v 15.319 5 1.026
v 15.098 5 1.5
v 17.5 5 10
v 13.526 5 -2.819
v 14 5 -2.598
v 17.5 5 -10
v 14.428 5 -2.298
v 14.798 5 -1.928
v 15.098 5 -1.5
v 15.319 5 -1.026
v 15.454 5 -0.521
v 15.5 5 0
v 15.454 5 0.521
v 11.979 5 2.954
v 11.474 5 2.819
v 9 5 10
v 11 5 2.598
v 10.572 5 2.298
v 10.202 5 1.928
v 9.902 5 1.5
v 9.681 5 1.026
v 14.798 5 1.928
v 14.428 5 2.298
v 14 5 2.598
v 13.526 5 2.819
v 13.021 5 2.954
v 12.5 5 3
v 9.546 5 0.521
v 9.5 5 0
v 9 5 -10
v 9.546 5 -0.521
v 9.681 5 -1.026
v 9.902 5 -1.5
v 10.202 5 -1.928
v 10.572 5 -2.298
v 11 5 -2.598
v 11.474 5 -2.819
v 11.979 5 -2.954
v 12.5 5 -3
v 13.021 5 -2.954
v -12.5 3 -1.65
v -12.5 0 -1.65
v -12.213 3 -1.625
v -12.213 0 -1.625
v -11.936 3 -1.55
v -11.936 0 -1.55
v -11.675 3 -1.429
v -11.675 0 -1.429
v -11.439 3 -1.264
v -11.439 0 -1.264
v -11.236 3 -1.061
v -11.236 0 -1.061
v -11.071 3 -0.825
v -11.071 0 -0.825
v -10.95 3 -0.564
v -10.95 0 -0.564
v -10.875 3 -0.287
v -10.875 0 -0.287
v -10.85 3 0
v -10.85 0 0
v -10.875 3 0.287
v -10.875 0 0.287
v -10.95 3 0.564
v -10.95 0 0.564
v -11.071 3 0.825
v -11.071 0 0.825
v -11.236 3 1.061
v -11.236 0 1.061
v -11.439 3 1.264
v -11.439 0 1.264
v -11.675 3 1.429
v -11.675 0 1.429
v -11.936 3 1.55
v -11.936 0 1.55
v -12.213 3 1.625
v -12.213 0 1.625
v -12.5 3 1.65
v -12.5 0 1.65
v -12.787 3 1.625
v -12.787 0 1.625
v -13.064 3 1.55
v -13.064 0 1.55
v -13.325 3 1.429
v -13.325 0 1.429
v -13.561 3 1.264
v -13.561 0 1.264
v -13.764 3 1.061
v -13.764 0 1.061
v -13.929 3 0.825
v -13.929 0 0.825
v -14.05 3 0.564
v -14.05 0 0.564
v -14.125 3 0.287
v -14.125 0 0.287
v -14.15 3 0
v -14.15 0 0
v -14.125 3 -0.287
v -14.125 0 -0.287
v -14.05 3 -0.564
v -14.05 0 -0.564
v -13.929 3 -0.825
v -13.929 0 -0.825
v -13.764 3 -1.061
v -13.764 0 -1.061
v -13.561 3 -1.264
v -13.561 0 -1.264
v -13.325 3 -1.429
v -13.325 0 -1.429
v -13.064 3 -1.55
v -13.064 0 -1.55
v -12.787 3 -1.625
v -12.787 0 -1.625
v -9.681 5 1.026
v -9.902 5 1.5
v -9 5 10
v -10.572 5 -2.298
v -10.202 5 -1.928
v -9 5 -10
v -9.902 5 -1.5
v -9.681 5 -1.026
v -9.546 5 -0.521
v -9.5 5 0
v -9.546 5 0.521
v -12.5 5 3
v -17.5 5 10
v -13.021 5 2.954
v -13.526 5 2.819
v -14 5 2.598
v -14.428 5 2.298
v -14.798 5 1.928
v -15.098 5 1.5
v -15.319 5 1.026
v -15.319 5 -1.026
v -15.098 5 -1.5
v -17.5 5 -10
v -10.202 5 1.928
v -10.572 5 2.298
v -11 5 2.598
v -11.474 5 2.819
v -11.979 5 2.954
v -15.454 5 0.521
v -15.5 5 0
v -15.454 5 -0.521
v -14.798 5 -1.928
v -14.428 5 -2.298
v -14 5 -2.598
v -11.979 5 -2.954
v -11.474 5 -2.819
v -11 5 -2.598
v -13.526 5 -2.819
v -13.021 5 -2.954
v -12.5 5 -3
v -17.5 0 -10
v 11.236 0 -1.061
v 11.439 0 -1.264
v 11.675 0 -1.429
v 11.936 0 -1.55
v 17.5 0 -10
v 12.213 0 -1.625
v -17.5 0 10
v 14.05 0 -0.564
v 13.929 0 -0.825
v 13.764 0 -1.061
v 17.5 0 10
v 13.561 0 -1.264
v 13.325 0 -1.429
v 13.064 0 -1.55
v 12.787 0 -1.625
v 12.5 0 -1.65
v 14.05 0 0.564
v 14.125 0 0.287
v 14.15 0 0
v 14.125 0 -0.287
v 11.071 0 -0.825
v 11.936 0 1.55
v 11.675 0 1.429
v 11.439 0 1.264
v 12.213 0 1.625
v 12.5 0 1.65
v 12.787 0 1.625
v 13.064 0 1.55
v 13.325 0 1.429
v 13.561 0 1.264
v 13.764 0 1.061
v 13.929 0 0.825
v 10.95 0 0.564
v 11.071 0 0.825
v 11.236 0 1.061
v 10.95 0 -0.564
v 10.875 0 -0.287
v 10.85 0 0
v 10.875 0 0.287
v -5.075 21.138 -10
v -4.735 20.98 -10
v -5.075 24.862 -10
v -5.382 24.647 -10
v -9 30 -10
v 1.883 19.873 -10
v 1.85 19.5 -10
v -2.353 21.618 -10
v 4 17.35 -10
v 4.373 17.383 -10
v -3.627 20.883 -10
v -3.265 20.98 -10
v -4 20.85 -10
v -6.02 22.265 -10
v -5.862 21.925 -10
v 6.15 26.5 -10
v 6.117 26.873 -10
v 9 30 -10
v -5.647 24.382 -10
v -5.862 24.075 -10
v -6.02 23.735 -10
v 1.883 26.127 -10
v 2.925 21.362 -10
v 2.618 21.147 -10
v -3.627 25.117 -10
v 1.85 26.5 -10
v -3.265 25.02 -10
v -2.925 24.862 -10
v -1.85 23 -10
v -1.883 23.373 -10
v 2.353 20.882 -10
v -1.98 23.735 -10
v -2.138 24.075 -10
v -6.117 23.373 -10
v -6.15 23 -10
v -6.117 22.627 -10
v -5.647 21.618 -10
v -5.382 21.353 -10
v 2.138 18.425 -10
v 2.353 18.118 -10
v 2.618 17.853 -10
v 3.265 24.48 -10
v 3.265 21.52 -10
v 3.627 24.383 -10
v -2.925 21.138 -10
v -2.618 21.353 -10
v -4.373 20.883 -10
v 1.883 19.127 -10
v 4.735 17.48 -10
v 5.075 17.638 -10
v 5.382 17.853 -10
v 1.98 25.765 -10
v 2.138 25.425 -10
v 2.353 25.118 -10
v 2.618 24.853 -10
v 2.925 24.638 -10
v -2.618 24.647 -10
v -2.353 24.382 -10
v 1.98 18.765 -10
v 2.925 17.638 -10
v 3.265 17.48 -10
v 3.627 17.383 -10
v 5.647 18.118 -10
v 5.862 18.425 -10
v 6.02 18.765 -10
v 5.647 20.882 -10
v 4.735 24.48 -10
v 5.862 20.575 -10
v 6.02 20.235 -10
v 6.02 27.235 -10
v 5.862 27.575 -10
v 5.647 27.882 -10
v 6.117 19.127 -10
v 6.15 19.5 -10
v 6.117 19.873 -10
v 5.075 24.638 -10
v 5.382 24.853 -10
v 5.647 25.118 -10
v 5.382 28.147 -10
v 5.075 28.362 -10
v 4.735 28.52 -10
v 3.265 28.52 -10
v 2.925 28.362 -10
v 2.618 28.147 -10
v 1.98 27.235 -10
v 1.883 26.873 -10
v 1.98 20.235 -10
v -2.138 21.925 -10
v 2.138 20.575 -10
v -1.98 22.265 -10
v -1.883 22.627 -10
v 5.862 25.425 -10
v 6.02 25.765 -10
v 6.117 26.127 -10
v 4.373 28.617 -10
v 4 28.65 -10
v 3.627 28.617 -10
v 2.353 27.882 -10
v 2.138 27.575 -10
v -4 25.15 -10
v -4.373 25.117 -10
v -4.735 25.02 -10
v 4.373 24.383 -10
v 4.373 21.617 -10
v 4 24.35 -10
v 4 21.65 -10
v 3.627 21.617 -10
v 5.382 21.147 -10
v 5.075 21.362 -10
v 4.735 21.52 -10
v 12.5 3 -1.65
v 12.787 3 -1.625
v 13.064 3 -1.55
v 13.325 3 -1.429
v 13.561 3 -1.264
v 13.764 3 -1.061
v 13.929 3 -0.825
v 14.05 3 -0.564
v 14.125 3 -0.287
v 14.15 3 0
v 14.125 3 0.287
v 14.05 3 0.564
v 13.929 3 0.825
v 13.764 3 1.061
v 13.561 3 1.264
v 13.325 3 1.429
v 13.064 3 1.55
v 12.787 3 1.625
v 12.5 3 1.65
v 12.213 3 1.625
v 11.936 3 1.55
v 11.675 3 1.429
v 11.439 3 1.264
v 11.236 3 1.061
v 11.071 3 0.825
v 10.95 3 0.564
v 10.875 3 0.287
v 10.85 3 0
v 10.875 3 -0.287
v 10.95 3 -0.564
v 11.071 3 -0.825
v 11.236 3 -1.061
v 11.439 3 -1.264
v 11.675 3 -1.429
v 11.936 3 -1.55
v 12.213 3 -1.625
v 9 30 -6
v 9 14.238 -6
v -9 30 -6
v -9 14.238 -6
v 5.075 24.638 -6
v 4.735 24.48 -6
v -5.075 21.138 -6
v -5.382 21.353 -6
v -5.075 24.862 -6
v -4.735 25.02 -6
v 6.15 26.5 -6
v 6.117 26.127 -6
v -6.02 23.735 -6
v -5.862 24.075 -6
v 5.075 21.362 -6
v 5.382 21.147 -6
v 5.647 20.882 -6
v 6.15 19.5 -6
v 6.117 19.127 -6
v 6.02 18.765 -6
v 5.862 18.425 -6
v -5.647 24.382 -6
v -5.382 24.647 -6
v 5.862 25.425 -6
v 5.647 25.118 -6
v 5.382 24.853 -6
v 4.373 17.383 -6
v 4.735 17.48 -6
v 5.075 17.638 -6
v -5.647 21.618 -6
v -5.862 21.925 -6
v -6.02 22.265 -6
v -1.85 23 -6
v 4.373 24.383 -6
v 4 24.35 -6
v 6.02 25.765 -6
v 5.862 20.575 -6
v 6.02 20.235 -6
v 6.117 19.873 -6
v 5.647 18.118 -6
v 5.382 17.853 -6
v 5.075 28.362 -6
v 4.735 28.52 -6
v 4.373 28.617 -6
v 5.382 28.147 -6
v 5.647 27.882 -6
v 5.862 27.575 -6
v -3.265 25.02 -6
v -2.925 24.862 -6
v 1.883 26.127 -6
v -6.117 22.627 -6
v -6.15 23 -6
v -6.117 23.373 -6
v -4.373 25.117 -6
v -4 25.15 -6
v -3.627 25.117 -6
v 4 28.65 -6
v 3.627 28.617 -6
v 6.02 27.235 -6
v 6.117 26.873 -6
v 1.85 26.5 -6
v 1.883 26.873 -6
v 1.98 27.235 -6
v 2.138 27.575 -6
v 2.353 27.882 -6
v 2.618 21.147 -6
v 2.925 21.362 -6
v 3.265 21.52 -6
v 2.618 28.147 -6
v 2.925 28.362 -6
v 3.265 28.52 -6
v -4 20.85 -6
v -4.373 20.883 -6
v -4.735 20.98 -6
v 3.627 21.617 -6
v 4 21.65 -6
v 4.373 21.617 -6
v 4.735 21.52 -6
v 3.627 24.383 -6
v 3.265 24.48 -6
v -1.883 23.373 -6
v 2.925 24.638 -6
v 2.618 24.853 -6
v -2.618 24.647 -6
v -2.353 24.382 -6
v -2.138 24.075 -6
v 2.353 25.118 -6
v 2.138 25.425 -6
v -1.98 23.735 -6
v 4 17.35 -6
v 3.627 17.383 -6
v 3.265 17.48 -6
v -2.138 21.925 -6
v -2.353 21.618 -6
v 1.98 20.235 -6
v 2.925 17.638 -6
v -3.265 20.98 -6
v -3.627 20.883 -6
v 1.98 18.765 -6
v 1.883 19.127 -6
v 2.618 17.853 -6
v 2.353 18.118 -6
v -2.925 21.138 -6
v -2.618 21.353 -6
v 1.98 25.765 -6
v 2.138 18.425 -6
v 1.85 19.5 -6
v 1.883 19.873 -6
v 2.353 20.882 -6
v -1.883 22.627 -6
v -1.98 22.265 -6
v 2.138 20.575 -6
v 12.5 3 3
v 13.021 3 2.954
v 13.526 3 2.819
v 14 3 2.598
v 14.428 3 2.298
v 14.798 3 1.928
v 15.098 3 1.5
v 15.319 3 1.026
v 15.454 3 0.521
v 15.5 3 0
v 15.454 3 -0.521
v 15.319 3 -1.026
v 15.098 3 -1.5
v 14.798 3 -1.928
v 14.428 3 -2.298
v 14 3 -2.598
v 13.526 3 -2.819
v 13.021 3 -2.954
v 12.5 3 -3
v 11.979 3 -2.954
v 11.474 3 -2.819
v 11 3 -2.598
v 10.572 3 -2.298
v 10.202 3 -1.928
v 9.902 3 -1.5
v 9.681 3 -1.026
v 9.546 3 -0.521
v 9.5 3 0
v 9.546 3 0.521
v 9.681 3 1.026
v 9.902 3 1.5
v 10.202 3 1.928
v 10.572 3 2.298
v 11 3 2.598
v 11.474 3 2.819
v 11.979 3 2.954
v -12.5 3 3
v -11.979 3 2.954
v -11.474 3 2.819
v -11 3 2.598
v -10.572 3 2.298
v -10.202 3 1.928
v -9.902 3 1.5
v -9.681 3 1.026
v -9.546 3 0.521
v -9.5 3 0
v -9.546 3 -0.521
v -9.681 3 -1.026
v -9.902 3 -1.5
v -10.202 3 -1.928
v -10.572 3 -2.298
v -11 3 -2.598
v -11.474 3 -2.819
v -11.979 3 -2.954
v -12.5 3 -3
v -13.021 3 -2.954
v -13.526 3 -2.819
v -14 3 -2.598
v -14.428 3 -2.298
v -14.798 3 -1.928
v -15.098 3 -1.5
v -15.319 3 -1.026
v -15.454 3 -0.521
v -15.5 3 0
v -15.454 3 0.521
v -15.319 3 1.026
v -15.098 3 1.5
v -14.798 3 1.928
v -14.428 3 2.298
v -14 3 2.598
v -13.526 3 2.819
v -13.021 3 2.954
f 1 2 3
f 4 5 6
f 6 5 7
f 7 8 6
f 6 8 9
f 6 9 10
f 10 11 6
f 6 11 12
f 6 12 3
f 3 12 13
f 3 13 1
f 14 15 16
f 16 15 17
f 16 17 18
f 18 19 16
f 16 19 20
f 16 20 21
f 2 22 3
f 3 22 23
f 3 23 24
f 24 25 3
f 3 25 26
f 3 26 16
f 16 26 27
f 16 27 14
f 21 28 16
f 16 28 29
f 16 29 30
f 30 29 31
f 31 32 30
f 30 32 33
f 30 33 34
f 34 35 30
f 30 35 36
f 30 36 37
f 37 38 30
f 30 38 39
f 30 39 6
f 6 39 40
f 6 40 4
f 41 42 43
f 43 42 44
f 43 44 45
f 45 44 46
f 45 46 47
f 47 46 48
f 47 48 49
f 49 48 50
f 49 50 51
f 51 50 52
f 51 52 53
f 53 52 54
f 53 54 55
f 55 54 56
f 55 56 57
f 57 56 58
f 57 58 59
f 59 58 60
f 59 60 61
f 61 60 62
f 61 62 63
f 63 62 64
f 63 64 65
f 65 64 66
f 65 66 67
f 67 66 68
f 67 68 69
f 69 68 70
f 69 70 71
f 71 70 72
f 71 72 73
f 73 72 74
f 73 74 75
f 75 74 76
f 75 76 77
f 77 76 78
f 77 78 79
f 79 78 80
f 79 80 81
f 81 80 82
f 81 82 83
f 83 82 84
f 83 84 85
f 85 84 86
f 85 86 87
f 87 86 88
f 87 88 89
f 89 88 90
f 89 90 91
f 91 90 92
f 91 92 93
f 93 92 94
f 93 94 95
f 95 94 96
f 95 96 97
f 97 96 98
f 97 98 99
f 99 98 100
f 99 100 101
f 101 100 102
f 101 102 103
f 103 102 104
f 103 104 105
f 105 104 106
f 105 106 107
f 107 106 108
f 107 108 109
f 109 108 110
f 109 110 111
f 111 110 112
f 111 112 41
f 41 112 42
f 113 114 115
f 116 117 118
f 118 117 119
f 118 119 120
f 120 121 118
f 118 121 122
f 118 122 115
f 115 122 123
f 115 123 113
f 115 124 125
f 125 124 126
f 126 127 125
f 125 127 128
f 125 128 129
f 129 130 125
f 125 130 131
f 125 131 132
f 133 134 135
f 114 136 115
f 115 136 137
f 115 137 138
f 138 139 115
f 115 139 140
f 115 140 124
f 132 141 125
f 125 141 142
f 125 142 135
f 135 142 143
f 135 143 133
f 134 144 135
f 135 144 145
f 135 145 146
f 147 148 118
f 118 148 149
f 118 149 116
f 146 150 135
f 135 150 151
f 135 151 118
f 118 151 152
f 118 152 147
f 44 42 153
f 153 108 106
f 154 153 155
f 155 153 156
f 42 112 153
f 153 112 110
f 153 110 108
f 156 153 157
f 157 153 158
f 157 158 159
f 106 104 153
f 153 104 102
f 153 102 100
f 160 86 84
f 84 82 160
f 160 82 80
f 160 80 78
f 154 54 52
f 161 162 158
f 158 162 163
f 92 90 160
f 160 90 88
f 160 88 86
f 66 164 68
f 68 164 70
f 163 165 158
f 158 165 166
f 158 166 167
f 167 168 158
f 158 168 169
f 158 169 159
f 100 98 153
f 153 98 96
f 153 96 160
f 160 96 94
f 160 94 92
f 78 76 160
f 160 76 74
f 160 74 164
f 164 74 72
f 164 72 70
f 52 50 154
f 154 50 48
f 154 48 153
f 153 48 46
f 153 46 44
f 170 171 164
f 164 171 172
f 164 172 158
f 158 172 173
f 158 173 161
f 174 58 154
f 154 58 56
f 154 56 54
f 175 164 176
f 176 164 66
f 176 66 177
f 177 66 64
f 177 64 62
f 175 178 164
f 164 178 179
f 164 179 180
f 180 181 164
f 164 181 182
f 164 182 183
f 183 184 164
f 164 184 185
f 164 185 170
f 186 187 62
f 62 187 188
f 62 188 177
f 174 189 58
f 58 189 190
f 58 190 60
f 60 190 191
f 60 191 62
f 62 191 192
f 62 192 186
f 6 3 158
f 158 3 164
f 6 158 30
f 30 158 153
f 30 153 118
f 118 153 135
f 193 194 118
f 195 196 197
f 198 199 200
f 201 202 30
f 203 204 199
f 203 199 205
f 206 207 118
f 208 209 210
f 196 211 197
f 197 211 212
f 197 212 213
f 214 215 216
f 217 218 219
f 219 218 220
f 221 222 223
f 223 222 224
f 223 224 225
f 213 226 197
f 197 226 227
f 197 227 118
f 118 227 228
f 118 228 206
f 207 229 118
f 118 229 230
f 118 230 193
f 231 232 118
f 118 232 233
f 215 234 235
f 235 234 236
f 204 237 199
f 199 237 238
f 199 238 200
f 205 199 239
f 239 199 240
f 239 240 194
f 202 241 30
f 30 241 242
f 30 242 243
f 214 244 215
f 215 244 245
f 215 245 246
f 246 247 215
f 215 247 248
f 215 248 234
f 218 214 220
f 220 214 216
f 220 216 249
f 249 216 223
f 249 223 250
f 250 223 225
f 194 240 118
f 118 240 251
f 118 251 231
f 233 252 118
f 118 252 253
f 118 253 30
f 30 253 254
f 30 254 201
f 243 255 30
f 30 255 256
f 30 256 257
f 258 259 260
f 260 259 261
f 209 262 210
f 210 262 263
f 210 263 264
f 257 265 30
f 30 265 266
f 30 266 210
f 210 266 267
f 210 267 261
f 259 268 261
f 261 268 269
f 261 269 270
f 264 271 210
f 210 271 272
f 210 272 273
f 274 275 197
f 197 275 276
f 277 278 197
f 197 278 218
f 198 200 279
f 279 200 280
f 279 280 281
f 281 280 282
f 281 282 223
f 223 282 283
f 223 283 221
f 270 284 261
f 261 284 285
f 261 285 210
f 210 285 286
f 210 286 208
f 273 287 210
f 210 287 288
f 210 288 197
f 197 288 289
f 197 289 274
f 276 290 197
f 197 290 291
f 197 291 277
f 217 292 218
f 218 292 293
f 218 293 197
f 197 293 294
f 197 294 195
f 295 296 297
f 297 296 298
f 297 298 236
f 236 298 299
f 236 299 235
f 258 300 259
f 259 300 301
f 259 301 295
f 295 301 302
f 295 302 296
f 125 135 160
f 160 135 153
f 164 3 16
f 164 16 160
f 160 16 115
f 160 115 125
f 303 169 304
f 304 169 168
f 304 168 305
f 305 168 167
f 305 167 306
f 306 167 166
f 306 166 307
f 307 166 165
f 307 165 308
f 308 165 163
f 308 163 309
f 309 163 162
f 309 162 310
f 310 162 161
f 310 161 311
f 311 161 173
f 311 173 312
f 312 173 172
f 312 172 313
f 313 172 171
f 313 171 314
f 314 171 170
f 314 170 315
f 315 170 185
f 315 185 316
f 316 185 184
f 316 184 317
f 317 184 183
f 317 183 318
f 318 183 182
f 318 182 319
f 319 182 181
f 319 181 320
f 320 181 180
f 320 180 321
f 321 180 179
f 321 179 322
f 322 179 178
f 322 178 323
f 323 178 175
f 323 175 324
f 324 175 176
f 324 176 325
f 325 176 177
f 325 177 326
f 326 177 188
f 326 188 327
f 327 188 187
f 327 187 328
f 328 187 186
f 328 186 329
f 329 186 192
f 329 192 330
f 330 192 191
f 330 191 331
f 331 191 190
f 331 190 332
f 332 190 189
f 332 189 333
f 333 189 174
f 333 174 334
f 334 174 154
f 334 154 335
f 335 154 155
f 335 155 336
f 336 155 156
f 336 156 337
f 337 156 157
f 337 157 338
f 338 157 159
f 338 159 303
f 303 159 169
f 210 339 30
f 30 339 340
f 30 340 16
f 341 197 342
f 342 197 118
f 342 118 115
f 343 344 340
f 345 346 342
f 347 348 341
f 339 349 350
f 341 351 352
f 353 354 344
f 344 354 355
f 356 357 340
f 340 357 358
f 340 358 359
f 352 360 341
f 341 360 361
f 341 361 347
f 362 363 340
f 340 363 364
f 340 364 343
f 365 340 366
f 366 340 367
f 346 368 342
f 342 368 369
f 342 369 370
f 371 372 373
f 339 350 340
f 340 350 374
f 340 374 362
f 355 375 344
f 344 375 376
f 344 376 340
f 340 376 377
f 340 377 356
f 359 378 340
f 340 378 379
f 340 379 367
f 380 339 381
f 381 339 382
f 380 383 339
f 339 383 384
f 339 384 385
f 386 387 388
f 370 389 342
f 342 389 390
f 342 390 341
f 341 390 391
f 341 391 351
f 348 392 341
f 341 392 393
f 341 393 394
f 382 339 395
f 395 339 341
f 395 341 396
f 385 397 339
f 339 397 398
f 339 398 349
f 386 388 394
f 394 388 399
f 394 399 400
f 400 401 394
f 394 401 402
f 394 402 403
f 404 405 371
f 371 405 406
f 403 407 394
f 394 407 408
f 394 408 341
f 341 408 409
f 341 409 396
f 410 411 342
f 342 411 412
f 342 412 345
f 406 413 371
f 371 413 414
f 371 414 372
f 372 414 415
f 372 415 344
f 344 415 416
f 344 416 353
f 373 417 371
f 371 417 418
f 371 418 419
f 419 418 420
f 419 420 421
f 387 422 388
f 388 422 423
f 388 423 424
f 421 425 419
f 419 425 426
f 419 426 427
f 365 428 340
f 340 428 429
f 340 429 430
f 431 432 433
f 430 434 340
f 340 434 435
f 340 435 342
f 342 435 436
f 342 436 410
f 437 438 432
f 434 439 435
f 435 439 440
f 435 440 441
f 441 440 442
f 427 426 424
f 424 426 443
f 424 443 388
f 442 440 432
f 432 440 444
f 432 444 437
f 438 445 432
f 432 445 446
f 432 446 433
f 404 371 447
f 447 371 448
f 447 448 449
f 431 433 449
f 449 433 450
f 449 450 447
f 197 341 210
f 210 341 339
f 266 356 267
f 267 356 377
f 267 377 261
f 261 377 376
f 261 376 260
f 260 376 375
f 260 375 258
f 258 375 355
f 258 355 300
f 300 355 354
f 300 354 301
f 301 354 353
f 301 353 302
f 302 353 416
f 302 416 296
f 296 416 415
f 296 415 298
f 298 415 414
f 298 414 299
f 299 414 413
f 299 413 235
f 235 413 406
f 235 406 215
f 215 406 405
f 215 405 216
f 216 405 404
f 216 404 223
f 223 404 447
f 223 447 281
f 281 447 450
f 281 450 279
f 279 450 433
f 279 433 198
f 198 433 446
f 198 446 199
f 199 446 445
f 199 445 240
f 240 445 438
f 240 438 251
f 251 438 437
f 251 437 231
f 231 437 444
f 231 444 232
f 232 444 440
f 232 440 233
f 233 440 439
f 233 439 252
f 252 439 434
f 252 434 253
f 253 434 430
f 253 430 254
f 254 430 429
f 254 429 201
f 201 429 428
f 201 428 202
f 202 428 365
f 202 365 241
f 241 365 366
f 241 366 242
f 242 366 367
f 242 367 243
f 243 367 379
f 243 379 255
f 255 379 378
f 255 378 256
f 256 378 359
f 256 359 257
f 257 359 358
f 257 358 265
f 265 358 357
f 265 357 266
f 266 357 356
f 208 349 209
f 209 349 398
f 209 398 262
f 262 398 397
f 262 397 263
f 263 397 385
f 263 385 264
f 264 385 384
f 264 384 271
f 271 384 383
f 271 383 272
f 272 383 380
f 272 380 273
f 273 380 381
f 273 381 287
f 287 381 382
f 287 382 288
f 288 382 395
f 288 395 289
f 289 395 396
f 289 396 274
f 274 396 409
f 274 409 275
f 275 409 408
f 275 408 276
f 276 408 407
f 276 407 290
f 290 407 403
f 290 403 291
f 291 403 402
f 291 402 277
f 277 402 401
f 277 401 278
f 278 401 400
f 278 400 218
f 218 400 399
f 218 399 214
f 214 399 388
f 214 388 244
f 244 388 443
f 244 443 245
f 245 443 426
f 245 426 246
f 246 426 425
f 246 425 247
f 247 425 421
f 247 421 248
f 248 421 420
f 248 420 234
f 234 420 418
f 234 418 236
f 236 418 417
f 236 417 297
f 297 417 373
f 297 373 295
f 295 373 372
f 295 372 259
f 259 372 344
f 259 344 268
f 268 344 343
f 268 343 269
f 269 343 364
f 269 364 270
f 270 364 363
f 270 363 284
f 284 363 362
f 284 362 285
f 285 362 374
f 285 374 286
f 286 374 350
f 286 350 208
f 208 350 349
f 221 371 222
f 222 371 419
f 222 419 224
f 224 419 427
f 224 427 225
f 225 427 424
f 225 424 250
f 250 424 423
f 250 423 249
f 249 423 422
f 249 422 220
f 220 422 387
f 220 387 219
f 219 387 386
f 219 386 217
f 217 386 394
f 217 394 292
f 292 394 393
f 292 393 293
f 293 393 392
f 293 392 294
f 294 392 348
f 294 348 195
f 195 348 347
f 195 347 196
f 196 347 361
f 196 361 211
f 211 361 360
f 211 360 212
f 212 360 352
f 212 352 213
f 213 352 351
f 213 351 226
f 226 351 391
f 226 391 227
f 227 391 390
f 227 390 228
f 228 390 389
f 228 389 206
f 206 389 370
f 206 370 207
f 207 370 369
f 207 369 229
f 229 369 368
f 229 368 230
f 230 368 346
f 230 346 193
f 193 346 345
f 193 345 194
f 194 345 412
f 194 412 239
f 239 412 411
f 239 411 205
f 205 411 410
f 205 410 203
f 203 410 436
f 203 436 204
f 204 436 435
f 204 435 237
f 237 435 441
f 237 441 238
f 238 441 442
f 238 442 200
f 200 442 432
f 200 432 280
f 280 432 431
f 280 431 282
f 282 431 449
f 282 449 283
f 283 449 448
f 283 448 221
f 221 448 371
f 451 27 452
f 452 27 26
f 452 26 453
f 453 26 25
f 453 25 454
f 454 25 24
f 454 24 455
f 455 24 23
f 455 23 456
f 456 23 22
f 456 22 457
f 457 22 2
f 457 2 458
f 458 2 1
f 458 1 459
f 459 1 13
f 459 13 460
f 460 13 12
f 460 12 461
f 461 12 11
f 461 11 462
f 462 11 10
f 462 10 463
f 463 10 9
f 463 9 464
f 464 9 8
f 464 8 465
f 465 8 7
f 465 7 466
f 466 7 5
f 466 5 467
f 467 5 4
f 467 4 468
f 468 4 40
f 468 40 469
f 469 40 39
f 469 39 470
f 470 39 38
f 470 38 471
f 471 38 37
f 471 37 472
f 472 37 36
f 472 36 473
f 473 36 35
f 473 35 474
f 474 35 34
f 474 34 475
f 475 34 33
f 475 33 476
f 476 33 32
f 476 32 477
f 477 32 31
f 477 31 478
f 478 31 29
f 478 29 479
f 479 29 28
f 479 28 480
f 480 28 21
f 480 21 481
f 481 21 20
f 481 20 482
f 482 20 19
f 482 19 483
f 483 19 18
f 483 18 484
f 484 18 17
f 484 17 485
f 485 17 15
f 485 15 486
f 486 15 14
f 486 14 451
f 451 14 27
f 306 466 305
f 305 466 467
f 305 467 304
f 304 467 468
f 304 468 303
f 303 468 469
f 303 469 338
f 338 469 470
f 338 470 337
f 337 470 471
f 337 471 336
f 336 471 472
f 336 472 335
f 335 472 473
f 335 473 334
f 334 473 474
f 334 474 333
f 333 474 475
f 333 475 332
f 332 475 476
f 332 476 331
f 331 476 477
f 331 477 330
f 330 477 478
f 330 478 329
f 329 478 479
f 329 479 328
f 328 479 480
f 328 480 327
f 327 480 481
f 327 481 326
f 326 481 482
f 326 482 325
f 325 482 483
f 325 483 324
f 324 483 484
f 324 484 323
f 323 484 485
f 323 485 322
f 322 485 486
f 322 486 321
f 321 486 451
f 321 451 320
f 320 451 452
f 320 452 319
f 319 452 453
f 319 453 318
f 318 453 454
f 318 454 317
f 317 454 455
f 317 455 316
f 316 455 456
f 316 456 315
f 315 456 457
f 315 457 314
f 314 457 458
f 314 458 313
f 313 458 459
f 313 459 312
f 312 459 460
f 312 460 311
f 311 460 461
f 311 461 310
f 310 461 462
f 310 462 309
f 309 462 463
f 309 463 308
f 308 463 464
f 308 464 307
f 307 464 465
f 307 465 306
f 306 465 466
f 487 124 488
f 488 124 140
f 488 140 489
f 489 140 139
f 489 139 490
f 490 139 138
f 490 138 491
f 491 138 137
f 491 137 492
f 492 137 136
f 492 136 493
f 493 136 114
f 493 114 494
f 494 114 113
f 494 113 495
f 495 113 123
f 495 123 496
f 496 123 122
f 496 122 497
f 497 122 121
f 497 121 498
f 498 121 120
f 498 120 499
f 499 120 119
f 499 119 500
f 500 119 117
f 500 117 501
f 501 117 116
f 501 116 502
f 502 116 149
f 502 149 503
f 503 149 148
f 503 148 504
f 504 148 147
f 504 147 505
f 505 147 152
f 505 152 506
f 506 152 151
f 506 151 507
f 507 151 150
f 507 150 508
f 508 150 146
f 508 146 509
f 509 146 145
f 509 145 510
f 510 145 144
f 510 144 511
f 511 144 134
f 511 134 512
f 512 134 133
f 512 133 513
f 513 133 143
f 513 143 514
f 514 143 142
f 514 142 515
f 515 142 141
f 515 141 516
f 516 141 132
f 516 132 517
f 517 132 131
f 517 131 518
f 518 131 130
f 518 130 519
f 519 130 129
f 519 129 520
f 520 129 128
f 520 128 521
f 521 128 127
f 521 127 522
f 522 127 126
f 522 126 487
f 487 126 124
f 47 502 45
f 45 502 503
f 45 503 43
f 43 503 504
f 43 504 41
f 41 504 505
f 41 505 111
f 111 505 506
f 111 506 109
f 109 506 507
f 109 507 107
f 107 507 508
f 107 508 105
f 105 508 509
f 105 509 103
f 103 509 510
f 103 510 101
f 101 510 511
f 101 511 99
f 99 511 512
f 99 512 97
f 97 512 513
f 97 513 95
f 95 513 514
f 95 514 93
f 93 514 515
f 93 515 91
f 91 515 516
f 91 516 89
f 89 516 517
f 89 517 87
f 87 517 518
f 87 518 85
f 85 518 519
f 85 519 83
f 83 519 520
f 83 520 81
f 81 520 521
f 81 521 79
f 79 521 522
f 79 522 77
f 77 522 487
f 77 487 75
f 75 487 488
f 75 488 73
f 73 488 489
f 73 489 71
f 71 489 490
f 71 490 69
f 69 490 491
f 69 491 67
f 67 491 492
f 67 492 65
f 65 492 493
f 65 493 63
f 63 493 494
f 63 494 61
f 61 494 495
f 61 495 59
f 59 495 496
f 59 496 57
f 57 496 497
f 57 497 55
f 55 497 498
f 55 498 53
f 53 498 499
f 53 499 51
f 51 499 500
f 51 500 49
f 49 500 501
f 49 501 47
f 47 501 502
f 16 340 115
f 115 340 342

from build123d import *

# Parameters (mm, degrees)
SKETCH1_W           = 35
SKETCH1_H           = 20
SKETCH1_R           = 1.65
BOSS_EXTRUDE1_DEPTH = 5
SKETCH3_W           = 18
SKETCH3_H           = 4
BOSS_EXTRUDE2_DEPTH = 25
CUT_EXTRUDE1_REACH  = 40.239
SKETCH4_R           = 2.15
SKETCH5_R           = 3
CUT_EXTRUDE2_DEPTH  = 2
CHAMFER1_SIZE2      = 9.237604307
CHAMFER1_SIZE       = 16


with BuildPart() as part:
    # Sketch1 → Boss-Extrude1 (new body)
    with BuildSketch(Plane(origin=(0, 0, 0), x_dir=(1, 0, 0), z_dir=(0, 1, 0))):
        Rectangle(SKETCH1_W, SKETCH1_H)
        with Locations(Location((-12.5, 0, 0), (0, 0, 270))):
            Circle(SKETCH1_R, mode=Mode.SUBTRACT)
        with Locations(Location((12.5, 0, 0), (0, 0, 90))):
            Circle(SKETCH1_R, mode=Mode.SUBTRACT)
    extrude(amount=BOSS_EXTRUDE1_DEPTH)

    # Sketch3 → Boss-Extrude2 (add)
    with BuildSketch(Plane(origin=(0, 5, 0), x_dir=(1, 0, 0), z_dir=(0, 1, 0))):
        with Locations((0, 8)):
            Rectangle(SKETCH3_W, SKETCH3_H)
    extrude(amount=BOSS_EXTRUDE2_DEPTH)

    # Sketch4 → Cut-Extrude1 (cut, up to next)
    with BuildSketch(Plane.XY.offset(-6), mode=Mode.PRIVATE) as cut_extrude1_sk1:
        with Locations((-4, 23)):
            Circle(SKETCH4_R)
    cut_extrude1_tool1 = extrude(cut_extrude1_sk1.sketch, amount=-CUT_EXTRUDE1_REACH, mode=Mode.PRIVATE) & part.part
    # Sketch4 → Cut-Extrude1 (cut, up to next)
    with BuildSketch(Plane.XY.offset(-6), mode=Mode.PRIVATE) as cut_extrude1_sk2:
        with Locations((4, 26.5)):
            Circle(SKETCH4_R)
    cut_extrude1_tool2 = extrude(cut_extrude1_sk2.sketch, amount=-CUT_EXTRUDE1_REACH, mode=Mode.PRIVATE) & part.part
    # Sketch4 → Cut-Extrude1 (cut, up to next)
    with BuildSketch(Plane.XY.offset(-6), mode=Mode.PRIVATE) as cut_extrude1_sk3:
        with Locations((4, 19.5)):
            Circle(SKETCH4_R)
    cut_extrude1_tool3 = extrude(cut_extrude1_sk3.sketch, amount=-CUT_EXTRUDE1_REACH, mode=Mode.PRIVATE) & part.part
    add(cut_extrude1_tool1.solids().sort_by_distance((-4, 23, -6))[0], mode=Mode.SUBTRACT)
    add(cut_extrude1_tool2.solids().sort_by_distance((4, 26.5, -6))[0], mode=Mode.SUBTRACT)
    add(cut_extrude1_tool3.solids().sort_by_distance((4, 19.5, -6))[0], mode=Mode.SUBTRACT)

    # Sketch5 → Cut-Extrude2 (cut)
    with BuildSketch(Plane(origin=(0, 5, 0), x_dir=(1, 0, 0), z_dir=(0, 1, 0))):
        with Locations(Location((-12.5, 0, 0), (0, 0, 270))):
            Circle(SKETCH5_R)
        with Locations(Location((12.5, 0, 0), (0, 0, 90))):
            Circle(SKETCH5_R)
    extrude(amount=-CUT_EXTRUDE2_DEPTH, mode=Mode.SUBTRACT)

    # Chamfer1
    chamfer1_edges = [part.edges().sort_by_distance(p)[0] for p in [
        (0, 5, -6),
    ]]
    chamfer1_side = [part.faces().sort_by_distance(p)[0] for p in [
        (0, 5, -5.815247914),
    ]]
    chamfer(chamfer1_edges, length=CHAMFER1_SIZE - 0.0001, length2=CHAMFER1_SIZE2 - 0.0001, reference=chamfer1_side[0])  # a hair under: the kernel refuses the full size


solid = part.part
